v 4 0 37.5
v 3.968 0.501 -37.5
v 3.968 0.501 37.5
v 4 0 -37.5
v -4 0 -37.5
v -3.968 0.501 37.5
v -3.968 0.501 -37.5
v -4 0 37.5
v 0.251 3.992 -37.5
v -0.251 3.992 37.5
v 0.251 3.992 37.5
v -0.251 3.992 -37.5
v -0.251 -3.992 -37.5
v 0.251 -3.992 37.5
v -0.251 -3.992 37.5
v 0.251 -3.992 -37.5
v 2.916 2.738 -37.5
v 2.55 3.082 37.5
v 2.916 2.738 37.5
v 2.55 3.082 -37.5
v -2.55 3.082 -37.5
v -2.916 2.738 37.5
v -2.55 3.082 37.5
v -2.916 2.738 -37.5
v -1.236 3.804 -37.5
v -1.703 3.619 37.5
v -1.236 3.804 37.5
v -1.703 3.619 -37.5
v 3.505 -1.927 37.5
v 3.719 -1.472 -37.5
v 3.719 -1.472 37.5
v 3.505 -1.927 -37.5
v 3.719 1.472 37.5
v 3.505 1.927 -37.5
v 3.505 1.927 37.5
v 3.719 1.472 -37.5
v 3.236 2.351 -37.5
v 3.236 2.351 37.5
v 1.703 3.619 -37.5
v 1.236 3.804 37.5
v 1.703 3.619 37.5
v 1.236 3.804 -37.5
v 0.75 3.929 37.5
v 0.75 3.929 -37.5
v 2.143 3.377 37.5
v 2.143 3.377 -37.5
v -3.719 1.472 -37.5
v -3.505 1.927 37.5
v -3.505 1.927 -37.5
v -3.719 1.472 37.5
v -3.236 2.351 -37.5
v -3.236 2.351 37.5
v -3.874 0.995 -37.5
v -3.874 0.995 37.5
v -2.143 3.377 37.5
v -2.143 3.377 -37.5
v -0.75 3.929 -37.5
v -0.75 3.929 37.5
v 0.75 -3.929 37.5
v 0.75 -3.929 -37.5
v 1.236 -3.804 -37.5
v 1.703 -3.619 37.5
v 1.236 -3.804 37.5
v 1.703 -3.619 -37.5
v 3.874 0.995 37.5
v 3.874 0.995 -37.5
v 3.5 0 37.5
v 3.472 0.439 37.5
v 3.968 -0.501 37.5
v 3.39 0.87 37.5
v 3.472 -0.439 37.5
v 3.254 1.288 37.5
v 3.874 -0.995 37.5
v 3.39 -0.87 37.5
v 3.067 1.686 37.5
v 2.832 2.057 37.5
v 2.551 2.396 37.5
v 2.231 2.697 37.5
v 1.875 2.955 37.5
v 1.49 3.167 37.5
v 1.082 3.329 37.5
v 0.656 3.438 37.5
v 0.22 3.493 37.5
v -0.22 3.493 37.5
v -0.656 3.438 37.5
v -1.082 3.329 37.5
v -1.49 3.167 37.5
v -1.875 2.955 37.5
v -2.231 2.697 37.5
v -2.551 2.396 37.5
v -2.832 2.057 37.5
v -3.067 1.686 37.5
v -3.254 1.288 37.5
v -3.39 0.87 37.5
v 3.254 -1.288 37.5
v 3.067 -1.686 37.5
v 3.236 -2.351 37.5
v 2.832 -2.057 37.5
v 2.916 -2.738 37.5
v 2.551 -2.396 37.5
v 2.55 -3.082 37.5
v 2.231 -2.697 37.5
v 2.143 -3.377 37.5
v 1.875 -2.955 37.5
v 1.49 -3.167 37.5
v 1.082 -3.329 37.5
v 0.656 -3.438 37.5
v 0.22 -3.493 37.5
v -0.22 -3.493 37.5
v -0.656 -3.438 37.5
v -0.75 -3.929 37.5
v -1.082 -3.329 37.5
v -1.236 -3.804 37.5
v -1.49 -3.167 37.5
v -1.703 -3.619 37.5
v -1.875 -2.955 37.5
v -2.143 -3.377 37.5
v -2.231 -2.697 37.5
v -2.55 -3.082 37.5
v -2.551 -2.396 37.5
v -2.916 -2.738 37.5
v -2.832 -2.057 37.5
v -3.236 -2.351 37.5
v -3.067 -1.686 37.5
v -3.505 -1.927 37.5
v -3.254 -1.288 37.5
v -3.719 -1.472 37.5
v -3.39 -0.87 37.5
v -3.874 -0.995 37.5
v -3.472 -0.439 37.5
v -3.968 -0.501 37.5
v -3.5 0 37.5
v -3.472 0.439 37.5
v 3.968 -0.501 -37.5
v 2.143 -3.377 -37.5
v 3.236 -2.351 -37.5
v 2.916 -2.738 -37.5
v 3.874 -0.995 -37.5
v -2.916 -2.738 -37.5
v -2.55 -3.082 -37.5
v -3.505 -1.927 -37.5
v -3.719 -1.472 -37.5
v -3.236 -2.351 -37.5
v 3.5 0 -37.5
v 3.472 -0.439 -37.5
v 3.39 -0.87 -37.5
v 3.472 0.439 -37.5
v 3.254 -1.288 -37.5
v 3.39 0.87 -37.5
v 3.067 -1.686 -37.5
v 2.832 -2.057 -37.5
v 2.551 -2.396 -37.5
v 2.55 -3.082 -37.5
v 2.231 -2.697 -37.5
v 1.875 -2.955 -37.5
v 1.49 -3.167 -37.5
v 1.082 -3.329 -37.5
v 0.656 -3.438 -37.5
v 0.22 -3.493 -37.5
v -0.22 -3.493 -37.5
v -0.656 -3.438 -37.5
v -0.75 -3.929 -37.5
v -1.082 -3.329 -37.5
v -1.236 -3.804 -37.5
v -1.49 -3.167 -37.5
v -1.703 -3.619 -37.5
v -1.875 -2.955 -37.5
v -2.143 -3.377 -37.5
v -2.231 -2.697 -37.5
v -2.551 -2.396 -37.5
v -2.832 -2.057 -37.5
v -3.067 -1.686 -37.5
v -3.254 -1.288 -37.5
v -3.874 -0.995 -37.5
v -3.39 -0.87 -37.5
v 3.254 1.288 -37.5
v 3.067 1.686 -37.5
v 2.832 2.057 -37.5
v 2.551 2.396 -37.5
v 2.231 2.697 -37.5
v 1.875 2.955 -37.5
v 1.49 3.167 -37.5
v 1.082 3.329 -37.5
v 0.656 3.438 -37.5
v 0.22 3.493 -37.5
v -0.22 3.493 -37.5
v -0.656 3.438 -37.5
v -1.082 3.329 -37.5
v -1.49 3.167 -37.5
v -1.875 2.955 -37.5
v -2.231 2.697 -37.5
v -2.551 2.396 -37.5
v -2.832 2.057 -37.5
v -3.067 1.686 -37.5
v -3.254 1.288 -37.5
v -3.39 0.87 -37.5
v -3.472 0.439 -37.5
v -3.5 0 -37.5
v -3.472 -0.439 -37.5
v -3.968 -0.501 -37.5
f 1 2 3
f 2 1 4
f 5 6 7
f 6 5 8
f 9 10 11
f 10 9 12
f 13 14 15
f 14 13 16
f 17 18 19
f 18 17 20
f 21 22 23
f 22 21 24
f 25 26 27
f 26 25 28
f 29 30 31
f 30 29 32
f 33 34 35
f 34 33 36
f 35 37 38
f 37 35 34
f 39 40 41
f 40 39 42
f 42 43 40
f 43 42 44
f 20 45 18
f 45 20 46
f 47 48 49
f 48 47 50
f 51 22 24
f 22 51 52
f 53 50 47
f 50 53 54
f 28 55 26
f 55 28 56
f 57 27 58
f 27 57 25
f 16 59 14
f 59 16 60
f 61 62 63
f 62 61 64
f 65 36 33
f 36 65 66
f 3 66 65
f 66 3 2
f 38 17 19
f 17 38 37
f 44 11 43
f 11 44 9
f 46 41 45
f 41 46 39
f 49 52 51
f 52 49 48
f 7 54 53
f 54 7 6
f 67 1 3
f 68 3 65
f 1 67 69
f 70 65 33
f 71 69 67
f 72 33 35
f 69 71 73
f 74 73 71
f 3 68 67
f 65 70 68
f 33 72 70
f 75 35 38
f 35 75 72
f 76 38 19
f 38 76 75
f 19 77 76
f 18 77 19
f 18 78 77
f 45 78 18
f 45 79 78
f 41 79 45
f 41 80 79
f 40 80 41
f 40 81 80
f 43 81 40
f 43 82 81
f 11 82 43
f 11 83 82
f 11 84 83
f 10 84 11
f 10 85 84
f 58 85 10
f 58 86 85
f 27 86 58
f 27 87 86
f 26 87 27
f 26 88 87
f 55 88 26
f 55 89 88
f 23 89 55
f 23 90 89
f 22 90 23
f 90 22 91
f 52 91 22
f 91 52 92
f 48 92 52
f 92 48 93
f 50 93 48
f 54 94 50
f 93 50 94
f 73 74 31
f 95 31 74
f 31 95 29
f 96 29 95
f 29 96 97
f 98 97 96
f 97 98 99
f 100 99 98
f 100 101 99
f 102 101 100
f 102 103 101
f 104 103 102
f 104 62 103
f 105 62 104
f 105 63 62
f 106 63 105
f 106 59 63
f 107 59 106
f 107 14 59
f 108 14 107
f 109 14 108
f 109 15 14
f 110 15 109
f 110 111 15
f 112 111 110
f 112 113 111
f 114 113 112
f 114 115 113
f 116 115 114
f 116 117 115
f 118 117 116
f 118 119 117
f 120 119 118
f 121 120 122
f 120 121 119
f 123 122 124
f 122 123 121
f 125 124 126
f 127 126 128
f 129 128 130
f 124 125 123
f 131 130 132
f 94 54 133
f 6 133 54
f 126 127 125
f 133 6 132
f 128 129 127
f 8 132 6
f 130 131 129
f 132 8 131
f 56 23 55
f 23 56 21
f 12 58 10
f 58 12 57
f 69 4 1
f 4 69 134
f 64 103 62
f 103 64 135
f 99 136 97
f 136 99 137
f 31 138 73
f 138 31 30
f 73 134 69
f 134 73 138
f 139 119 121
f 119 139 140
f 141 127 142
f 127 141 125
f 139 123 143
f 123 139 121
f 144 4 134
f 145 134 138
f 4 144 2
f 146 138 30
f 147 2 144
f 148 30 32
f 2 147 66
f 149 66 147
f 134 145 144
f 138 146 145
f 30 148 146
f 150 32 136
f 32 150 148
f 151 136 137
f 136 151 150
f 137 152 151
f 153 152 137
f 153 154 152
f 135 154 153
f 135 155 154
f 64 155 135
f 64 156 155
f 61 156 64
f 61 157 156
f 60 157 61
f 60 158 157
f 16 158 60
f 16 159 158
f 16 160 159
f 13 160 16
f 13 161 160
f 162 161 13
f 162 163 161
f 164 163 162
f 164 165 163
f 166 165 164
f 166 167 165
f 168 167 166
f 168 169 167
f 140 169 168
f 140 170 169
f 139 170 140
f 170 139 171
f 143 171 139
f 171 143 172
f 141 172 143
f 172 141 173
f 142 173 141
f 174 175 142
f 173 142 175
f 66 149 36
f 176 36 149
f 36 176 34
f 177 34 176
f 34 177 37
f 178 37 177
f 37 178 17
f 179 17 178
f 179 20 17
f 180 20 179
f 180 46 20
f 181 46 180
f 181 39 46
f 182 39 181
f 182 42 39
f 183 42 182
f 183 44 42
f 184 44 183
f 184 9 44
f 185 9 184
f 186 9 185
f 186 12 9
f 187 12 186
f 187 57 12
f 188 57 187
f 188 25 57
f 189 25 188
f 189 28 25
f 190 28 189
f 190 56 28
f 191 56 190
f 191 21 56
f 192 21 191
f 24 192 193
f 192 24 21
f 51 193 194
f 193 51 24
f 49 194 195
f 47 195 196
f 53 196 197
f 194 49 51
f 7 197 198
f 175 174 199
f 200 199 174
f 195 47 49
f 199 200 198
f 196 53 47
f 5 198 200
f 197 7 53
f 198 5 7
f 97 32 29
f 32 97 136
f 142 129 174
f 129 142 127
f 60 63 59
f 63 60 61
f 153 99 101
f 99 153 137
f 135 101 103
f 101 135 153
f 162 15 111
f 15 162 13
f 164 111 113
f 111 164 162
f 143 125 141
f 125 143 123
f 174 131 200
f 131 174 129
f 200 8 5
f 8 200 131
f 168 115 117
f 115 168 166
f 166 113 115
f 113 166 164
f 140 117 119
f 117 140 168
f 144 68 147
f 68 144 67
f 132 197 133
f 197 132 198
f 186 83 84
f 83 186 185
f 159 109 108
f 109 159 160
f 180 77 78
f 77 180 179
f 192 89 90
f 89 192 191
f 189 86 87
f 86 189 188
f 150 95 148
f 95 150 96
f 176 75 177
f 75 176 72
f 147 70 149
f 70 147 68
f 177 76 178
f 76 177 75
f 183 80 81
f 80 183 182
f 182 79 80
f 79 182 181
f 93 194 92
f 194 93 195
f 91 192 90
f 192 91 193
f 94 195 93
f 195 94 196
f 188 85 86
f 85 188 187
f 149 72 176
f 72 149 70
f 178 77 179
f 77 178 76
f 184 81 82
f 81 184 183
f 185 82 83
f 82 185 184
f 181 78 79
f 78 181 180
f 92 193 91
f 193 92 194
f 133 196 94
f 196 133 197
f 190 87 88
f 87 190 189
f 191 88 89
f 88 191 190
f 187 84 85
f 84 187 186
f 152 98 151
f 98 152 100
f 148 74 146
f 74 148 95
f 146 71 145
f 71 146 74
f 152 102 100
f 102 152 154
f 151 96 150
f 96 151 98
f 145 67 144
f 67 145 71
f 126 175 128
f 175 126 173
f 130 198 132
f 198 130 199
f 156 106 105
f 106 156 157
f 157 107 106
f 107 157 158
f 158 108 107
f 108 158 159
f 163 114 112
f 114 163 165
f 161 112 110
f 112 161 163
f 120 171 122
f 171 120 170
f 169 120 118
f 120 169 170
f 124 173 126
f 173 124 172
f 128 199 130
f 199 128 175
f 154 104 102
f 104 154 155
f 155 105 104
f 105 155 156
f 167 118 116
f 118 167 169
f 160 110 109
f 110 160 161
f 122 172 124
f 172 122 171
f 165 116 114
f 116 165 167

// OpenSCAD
$fn = 50;


difference() {
	union() {
		translate(v = [0, 0, -37.5000000000]) {
			cylinder(h = 75, r = 4.0000000000);
		}
	}
	union() {
		translate(v = [0, 0, -100.0000000000]) {
			cylinder(h = 200, r = 3.5000000000);
		}
	}
}
